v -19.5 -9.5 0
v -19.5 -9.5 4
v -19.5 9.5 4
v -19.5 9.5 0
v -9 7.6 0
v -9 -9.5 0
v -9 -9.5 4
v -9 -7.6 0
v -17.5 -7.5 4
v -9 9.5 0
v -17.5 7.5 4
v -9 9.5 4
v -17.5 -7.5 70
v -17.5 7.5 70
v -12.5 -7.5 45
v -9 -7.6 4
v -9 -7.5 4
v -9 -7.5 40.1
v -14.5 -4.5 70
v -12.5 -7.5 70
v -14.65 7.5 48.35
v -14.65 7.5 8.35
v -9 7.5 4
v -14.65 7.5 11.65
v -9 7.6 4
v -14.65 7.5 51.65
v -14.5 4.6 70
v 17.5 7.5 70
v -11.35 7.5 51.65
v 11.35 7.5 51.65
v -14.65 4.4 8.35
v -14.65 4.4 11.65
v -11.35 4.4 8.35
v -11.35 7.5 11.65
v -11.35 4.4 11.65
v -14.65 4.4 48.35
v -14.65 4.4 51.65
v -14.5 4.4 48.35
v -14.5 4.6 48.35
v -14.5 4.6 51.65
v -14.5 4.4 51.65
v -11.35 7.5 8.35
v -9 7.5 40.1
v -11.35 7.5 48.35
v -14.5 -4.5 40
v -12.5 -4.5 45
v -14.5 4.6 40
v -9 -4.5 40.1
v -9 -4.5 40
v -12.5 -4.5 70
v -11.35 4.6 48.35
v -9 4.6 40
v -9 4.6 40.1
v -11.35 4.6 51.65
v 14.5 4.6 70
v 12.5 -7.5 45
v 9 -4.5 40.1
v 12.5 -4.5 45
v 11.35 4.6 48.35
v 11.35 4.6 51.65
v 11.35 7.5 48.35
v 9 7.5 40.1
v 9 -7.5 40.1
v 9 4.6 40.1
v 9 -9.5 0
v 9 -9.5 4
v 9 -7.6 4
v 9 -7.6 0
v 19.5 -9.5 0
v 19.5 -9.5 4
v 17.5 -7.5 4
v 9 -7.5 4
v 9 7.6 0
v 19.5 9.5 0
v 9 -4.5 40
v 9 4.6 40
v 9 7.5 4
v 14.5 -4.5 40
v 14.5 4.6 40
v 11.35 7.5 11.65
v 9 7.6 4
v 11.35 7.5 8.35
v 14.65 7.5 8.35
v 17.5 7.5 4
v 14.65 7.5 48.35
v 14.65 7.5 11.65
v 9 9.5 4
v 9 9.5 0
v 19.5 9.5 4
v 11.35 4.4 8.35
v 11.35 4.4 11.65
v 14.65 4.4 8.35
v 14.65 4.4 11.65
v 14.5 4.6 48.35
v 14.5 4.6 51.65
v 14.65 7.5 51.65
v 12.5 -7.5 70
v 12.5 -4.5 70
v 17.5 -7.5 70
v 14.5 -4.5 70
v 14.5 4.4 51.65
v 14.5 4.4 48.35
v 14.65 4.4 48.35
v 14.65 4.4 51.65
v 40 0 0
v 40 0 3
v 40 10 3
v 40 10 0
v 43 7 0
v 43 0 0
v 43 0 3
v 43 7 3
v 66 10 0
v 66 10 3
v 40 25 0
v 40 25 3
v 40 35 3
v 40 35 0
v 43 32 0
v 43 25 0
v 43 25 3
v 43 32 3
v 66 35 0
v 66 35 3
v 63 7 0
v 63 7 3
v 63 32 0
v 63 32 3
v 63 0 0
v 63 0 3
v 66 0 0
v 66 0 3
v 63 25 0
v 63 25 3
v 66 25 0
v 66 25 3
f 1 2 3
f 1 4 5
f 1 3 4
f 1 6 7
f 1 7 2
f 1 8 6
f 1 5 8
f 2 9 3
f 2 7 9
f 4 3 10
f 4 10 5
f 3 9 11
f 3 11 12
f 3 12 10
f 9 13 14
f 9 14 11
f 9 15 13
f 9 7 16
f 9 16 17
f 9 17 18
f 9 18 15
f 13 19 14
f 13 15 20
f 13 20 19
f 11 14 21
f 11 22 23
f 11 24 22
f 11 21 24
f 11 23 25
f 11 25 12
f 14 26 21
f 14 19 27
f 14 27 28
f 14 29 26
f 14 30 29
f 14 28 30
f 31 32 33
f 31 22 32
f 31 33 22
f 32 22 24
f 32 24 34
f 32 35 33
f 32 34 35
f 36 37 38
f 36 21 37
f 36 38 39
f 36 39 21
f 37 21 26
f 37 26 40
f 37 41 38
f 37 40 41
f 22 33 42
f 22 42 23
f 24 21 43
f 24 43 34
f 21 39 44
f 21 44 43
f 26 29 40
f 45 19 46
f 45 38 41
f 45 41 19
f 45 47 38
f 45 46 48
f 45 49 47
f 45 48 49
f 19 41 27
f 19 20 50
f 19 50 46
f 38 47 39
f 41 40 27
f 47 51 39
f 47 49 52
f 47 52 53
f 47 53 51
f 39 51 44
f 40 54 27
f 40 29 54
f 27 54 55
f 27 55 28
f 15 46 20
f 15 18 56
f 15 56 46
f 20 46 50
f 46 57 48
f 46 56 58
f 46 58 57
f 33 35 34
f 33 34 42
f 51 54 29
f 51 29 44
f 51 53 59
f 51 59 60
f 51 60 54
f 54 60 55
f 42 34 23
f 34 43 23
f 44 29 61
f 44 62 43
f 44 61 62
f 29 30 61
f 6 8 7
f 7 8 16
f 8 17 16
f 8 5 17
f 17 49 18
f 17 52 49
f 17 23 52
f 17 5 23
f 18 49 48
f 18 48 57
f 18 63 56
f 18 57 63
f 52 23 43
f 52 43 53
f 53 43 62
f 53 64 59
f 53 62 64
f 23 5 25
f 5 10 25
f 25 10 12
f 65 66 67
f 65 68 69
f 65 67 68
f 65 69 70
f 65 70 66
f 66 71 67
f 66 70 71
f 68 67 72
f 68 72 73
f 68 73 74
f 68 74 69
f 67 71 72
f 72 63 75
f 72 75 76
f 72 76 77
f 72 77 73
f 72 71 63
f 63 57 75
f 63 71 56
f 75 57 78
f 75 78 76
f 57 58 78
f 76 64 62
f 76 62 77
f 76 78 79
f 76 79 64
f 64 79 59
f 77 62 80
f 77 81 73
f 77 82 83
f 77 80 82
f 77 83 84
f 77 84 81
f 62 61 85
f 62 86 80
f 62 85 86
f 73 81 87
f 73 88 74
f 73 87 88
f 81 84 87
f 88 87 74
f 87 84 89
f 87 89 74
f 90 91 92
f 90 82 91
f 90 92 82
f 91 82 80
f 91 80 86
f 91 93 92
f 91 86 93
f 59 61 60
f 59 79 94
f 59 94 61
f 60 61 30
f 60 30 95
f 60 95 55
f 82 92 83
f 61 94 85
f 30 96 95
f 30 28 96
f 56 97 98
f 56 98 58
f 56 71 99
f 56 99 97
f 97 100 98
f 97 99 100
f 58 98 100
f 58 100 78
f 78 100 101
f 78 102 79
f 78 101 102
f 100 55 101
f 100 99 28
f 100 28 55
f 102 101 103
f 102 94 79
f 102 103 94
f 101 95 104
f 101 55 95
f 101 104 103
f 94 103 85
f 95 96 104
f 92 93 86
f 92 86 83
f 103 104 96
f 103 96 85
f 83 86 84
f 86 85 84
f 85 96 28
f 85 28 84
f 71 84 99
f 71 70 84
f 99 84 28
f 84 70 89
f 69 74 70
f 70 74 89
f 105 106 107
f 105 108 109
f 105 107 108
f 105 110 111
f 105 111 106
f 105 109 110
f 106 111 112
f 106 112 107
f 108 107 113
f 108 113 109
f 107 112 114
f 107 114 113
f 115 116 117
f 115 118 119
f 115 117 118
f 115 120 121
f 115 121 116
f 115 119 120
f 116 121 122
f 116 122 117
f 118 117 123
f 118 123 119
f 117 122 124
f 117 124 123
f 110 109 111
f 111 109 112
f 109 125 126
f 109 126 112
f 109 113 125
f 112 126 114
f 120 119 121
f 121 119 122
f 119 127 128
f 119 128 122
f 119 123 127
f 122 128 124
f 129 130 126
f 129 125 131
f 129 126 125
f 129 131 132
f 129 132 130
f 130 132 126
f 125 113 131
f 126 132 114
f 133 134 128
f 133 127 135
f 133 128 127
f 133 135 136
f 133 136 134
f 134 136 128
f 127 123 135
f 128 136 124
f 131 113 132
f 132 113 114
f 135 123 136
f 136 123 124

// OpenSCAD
// ====================================================
// SUPPORT ESP32-C3 SUR PIEDS + DEUX TROUS DE CROCHETS
// ====================================================

// --- PARAMÈTRES DU BOÎTIER ---
boitier_largeur = 28; // Largeur du boîtier (mm)
boitier_epaisseur = 8; // Épaisseur du boîtier (mm)

// --- PARAMÈTRES DU PASSAGE USB-C ---
largeur_prise_usb = 18; // Largeur d'ouverture USB
hauteur_passage_usb = 40;// Espace sous le boîtier

// --- PARAMÈTRES DU SUPPORT ET PIEDS ---
marge = 1.0; // Jeu d'insertion
epaisseur_paroi = 3.0; // Épaisseur des parois
marge_socle = 4; // Débord des pieds pour la stabilité

// --- PARAMÈTRES DES CROCHETS ---
section_crochet = 3; // Section (4x4mm)
branche_courte = (epaisseur_paroi*2) + 4; // Longueur insérée
branche_longue = 26; // Longueur d'accroche
jeu = 0.3; // Tolérance d'assemblage
position_depart_trou_crochet = 13;

$fn = 40;

// ====================================================
// ASSEMBLAGE
// ====================================================

// 1. Support vertical
support_esp32_simplifie();

// 2. Les 2 crochets à côté
translate([40, 0, 0]) piece_en_u();
translate([40, 25, 0]) piece_en_u();


// ====================================================
// MODULES DE CONCEPTION
// ====================================================

module support_esp32_simplifie() {
    l_int = boitier_largeur + marge;
    e_int = boitier_epaisseur + marge;

    l_ext = l_int + 2 * epaisseur_paroi;
    e_ext = e_int + 2 * epaisseur_paroi;
    h_totale = hauteur_passage_usb + 30;

    difference() {
        union() {
            // Corps du support vertical
            translate([-l_ext/2, -e_ext/2, 0])
                cube([l_ext, e_ext, h_totale]);

            // 2 Pieds simples
            translate([-(l_ext + marge_socle)/2, -(e_ext + marge_socle)/2, 0])
                cube([10.5, e_ext + marge_socle, 4]);
            
            translate([9, -(e_ext + marge_socle)/2, 0])
                cube([10.5, e_ext + marge_socle, 4]);
        }

        // --- 1. LOGEMENT INTERNE ESP32 ---
        translate([-l_int/2, -e_int/2, hauteur_passage_usb])
            cube([l_int, e_int + 0.1, 30 + 0.1]);

        // --- 2. DÉCOUPE ÉCRAN FACADE AVANT ---
        translate([-(l_int - 4)/2, -e_ext/2 - 0.1, hauteur_passage_usb + 5])
            cube([l_int - 4, epaisseur_paroi + 0.2, 25 + 0.1]);

        // --- 3. DÉCOUPE TOTALEMENT VIDE USB-C (TRAVERSE DE HAUT EN BAS) ---
        // Évide tout le centre jusqu'au sol (0 en Z)
        translate([-largeur_prise_usb/2, -e_ext/2 - 0.1, -0.1])
            cube([largeur_prise_usb, e_ext + 0.2, hauteur_passage_usb + 0.2]);

        // --- 4. TROU HAUT / DROITE ---
        translate([position_depart_trou_crochet, e_ext/2 + 0.1, 50])
            trou_crochet();

        // --- 5. TROU HAUT / GAUCHE ---
        translate([position_depart_trou_crochet-branche_longue, e_ext/2 + 0.1, 50])
            trou_crochet();
        
        // --- 6. TROU BAS / DROITE ---
        translate([position_depart_trou_crochet, e_ext/2 + 0.1, 10])
            trou_crochet();
        
        // --- 7. TROU BAS / GAUCHE ---
        translate([position_depart_trou_crochet-branche_longue, e_ext/2 + 0.1, 10])
            trou_crochet();
    }
}

module piece_en_u() {
    union() {
        // 1. Première branche courte (votre premier bloc)
        cube([section_crochet, branche_courte, section_crochet]);
        
        // 2. Branche longue (la base du U)
        translate([0, branche_courte - section_crochet, 0])
            cube([branche_longue, section_crochet, section_crochet]);    
        
        // 3. Deuxième branche courte (le retour pour former le U)
        translate([branche_longue - section_crochet, 0, 0])
            cube([section_crochet, branche_courte, section_crochet]);
    }
}

module trou_crochet() {
    // Trou carré traversant la paroi arrière d'arrière en avant
    translate([-(section_crochet + jeu)/2, -epaisseur_paroi - 0.2, -(section_crochet + jeu)/2])
        cube([
            section_crochet + jeu, 
            epaisseur_paroi + 0.4, 
            section_crochet + jeu
        ]);
}
